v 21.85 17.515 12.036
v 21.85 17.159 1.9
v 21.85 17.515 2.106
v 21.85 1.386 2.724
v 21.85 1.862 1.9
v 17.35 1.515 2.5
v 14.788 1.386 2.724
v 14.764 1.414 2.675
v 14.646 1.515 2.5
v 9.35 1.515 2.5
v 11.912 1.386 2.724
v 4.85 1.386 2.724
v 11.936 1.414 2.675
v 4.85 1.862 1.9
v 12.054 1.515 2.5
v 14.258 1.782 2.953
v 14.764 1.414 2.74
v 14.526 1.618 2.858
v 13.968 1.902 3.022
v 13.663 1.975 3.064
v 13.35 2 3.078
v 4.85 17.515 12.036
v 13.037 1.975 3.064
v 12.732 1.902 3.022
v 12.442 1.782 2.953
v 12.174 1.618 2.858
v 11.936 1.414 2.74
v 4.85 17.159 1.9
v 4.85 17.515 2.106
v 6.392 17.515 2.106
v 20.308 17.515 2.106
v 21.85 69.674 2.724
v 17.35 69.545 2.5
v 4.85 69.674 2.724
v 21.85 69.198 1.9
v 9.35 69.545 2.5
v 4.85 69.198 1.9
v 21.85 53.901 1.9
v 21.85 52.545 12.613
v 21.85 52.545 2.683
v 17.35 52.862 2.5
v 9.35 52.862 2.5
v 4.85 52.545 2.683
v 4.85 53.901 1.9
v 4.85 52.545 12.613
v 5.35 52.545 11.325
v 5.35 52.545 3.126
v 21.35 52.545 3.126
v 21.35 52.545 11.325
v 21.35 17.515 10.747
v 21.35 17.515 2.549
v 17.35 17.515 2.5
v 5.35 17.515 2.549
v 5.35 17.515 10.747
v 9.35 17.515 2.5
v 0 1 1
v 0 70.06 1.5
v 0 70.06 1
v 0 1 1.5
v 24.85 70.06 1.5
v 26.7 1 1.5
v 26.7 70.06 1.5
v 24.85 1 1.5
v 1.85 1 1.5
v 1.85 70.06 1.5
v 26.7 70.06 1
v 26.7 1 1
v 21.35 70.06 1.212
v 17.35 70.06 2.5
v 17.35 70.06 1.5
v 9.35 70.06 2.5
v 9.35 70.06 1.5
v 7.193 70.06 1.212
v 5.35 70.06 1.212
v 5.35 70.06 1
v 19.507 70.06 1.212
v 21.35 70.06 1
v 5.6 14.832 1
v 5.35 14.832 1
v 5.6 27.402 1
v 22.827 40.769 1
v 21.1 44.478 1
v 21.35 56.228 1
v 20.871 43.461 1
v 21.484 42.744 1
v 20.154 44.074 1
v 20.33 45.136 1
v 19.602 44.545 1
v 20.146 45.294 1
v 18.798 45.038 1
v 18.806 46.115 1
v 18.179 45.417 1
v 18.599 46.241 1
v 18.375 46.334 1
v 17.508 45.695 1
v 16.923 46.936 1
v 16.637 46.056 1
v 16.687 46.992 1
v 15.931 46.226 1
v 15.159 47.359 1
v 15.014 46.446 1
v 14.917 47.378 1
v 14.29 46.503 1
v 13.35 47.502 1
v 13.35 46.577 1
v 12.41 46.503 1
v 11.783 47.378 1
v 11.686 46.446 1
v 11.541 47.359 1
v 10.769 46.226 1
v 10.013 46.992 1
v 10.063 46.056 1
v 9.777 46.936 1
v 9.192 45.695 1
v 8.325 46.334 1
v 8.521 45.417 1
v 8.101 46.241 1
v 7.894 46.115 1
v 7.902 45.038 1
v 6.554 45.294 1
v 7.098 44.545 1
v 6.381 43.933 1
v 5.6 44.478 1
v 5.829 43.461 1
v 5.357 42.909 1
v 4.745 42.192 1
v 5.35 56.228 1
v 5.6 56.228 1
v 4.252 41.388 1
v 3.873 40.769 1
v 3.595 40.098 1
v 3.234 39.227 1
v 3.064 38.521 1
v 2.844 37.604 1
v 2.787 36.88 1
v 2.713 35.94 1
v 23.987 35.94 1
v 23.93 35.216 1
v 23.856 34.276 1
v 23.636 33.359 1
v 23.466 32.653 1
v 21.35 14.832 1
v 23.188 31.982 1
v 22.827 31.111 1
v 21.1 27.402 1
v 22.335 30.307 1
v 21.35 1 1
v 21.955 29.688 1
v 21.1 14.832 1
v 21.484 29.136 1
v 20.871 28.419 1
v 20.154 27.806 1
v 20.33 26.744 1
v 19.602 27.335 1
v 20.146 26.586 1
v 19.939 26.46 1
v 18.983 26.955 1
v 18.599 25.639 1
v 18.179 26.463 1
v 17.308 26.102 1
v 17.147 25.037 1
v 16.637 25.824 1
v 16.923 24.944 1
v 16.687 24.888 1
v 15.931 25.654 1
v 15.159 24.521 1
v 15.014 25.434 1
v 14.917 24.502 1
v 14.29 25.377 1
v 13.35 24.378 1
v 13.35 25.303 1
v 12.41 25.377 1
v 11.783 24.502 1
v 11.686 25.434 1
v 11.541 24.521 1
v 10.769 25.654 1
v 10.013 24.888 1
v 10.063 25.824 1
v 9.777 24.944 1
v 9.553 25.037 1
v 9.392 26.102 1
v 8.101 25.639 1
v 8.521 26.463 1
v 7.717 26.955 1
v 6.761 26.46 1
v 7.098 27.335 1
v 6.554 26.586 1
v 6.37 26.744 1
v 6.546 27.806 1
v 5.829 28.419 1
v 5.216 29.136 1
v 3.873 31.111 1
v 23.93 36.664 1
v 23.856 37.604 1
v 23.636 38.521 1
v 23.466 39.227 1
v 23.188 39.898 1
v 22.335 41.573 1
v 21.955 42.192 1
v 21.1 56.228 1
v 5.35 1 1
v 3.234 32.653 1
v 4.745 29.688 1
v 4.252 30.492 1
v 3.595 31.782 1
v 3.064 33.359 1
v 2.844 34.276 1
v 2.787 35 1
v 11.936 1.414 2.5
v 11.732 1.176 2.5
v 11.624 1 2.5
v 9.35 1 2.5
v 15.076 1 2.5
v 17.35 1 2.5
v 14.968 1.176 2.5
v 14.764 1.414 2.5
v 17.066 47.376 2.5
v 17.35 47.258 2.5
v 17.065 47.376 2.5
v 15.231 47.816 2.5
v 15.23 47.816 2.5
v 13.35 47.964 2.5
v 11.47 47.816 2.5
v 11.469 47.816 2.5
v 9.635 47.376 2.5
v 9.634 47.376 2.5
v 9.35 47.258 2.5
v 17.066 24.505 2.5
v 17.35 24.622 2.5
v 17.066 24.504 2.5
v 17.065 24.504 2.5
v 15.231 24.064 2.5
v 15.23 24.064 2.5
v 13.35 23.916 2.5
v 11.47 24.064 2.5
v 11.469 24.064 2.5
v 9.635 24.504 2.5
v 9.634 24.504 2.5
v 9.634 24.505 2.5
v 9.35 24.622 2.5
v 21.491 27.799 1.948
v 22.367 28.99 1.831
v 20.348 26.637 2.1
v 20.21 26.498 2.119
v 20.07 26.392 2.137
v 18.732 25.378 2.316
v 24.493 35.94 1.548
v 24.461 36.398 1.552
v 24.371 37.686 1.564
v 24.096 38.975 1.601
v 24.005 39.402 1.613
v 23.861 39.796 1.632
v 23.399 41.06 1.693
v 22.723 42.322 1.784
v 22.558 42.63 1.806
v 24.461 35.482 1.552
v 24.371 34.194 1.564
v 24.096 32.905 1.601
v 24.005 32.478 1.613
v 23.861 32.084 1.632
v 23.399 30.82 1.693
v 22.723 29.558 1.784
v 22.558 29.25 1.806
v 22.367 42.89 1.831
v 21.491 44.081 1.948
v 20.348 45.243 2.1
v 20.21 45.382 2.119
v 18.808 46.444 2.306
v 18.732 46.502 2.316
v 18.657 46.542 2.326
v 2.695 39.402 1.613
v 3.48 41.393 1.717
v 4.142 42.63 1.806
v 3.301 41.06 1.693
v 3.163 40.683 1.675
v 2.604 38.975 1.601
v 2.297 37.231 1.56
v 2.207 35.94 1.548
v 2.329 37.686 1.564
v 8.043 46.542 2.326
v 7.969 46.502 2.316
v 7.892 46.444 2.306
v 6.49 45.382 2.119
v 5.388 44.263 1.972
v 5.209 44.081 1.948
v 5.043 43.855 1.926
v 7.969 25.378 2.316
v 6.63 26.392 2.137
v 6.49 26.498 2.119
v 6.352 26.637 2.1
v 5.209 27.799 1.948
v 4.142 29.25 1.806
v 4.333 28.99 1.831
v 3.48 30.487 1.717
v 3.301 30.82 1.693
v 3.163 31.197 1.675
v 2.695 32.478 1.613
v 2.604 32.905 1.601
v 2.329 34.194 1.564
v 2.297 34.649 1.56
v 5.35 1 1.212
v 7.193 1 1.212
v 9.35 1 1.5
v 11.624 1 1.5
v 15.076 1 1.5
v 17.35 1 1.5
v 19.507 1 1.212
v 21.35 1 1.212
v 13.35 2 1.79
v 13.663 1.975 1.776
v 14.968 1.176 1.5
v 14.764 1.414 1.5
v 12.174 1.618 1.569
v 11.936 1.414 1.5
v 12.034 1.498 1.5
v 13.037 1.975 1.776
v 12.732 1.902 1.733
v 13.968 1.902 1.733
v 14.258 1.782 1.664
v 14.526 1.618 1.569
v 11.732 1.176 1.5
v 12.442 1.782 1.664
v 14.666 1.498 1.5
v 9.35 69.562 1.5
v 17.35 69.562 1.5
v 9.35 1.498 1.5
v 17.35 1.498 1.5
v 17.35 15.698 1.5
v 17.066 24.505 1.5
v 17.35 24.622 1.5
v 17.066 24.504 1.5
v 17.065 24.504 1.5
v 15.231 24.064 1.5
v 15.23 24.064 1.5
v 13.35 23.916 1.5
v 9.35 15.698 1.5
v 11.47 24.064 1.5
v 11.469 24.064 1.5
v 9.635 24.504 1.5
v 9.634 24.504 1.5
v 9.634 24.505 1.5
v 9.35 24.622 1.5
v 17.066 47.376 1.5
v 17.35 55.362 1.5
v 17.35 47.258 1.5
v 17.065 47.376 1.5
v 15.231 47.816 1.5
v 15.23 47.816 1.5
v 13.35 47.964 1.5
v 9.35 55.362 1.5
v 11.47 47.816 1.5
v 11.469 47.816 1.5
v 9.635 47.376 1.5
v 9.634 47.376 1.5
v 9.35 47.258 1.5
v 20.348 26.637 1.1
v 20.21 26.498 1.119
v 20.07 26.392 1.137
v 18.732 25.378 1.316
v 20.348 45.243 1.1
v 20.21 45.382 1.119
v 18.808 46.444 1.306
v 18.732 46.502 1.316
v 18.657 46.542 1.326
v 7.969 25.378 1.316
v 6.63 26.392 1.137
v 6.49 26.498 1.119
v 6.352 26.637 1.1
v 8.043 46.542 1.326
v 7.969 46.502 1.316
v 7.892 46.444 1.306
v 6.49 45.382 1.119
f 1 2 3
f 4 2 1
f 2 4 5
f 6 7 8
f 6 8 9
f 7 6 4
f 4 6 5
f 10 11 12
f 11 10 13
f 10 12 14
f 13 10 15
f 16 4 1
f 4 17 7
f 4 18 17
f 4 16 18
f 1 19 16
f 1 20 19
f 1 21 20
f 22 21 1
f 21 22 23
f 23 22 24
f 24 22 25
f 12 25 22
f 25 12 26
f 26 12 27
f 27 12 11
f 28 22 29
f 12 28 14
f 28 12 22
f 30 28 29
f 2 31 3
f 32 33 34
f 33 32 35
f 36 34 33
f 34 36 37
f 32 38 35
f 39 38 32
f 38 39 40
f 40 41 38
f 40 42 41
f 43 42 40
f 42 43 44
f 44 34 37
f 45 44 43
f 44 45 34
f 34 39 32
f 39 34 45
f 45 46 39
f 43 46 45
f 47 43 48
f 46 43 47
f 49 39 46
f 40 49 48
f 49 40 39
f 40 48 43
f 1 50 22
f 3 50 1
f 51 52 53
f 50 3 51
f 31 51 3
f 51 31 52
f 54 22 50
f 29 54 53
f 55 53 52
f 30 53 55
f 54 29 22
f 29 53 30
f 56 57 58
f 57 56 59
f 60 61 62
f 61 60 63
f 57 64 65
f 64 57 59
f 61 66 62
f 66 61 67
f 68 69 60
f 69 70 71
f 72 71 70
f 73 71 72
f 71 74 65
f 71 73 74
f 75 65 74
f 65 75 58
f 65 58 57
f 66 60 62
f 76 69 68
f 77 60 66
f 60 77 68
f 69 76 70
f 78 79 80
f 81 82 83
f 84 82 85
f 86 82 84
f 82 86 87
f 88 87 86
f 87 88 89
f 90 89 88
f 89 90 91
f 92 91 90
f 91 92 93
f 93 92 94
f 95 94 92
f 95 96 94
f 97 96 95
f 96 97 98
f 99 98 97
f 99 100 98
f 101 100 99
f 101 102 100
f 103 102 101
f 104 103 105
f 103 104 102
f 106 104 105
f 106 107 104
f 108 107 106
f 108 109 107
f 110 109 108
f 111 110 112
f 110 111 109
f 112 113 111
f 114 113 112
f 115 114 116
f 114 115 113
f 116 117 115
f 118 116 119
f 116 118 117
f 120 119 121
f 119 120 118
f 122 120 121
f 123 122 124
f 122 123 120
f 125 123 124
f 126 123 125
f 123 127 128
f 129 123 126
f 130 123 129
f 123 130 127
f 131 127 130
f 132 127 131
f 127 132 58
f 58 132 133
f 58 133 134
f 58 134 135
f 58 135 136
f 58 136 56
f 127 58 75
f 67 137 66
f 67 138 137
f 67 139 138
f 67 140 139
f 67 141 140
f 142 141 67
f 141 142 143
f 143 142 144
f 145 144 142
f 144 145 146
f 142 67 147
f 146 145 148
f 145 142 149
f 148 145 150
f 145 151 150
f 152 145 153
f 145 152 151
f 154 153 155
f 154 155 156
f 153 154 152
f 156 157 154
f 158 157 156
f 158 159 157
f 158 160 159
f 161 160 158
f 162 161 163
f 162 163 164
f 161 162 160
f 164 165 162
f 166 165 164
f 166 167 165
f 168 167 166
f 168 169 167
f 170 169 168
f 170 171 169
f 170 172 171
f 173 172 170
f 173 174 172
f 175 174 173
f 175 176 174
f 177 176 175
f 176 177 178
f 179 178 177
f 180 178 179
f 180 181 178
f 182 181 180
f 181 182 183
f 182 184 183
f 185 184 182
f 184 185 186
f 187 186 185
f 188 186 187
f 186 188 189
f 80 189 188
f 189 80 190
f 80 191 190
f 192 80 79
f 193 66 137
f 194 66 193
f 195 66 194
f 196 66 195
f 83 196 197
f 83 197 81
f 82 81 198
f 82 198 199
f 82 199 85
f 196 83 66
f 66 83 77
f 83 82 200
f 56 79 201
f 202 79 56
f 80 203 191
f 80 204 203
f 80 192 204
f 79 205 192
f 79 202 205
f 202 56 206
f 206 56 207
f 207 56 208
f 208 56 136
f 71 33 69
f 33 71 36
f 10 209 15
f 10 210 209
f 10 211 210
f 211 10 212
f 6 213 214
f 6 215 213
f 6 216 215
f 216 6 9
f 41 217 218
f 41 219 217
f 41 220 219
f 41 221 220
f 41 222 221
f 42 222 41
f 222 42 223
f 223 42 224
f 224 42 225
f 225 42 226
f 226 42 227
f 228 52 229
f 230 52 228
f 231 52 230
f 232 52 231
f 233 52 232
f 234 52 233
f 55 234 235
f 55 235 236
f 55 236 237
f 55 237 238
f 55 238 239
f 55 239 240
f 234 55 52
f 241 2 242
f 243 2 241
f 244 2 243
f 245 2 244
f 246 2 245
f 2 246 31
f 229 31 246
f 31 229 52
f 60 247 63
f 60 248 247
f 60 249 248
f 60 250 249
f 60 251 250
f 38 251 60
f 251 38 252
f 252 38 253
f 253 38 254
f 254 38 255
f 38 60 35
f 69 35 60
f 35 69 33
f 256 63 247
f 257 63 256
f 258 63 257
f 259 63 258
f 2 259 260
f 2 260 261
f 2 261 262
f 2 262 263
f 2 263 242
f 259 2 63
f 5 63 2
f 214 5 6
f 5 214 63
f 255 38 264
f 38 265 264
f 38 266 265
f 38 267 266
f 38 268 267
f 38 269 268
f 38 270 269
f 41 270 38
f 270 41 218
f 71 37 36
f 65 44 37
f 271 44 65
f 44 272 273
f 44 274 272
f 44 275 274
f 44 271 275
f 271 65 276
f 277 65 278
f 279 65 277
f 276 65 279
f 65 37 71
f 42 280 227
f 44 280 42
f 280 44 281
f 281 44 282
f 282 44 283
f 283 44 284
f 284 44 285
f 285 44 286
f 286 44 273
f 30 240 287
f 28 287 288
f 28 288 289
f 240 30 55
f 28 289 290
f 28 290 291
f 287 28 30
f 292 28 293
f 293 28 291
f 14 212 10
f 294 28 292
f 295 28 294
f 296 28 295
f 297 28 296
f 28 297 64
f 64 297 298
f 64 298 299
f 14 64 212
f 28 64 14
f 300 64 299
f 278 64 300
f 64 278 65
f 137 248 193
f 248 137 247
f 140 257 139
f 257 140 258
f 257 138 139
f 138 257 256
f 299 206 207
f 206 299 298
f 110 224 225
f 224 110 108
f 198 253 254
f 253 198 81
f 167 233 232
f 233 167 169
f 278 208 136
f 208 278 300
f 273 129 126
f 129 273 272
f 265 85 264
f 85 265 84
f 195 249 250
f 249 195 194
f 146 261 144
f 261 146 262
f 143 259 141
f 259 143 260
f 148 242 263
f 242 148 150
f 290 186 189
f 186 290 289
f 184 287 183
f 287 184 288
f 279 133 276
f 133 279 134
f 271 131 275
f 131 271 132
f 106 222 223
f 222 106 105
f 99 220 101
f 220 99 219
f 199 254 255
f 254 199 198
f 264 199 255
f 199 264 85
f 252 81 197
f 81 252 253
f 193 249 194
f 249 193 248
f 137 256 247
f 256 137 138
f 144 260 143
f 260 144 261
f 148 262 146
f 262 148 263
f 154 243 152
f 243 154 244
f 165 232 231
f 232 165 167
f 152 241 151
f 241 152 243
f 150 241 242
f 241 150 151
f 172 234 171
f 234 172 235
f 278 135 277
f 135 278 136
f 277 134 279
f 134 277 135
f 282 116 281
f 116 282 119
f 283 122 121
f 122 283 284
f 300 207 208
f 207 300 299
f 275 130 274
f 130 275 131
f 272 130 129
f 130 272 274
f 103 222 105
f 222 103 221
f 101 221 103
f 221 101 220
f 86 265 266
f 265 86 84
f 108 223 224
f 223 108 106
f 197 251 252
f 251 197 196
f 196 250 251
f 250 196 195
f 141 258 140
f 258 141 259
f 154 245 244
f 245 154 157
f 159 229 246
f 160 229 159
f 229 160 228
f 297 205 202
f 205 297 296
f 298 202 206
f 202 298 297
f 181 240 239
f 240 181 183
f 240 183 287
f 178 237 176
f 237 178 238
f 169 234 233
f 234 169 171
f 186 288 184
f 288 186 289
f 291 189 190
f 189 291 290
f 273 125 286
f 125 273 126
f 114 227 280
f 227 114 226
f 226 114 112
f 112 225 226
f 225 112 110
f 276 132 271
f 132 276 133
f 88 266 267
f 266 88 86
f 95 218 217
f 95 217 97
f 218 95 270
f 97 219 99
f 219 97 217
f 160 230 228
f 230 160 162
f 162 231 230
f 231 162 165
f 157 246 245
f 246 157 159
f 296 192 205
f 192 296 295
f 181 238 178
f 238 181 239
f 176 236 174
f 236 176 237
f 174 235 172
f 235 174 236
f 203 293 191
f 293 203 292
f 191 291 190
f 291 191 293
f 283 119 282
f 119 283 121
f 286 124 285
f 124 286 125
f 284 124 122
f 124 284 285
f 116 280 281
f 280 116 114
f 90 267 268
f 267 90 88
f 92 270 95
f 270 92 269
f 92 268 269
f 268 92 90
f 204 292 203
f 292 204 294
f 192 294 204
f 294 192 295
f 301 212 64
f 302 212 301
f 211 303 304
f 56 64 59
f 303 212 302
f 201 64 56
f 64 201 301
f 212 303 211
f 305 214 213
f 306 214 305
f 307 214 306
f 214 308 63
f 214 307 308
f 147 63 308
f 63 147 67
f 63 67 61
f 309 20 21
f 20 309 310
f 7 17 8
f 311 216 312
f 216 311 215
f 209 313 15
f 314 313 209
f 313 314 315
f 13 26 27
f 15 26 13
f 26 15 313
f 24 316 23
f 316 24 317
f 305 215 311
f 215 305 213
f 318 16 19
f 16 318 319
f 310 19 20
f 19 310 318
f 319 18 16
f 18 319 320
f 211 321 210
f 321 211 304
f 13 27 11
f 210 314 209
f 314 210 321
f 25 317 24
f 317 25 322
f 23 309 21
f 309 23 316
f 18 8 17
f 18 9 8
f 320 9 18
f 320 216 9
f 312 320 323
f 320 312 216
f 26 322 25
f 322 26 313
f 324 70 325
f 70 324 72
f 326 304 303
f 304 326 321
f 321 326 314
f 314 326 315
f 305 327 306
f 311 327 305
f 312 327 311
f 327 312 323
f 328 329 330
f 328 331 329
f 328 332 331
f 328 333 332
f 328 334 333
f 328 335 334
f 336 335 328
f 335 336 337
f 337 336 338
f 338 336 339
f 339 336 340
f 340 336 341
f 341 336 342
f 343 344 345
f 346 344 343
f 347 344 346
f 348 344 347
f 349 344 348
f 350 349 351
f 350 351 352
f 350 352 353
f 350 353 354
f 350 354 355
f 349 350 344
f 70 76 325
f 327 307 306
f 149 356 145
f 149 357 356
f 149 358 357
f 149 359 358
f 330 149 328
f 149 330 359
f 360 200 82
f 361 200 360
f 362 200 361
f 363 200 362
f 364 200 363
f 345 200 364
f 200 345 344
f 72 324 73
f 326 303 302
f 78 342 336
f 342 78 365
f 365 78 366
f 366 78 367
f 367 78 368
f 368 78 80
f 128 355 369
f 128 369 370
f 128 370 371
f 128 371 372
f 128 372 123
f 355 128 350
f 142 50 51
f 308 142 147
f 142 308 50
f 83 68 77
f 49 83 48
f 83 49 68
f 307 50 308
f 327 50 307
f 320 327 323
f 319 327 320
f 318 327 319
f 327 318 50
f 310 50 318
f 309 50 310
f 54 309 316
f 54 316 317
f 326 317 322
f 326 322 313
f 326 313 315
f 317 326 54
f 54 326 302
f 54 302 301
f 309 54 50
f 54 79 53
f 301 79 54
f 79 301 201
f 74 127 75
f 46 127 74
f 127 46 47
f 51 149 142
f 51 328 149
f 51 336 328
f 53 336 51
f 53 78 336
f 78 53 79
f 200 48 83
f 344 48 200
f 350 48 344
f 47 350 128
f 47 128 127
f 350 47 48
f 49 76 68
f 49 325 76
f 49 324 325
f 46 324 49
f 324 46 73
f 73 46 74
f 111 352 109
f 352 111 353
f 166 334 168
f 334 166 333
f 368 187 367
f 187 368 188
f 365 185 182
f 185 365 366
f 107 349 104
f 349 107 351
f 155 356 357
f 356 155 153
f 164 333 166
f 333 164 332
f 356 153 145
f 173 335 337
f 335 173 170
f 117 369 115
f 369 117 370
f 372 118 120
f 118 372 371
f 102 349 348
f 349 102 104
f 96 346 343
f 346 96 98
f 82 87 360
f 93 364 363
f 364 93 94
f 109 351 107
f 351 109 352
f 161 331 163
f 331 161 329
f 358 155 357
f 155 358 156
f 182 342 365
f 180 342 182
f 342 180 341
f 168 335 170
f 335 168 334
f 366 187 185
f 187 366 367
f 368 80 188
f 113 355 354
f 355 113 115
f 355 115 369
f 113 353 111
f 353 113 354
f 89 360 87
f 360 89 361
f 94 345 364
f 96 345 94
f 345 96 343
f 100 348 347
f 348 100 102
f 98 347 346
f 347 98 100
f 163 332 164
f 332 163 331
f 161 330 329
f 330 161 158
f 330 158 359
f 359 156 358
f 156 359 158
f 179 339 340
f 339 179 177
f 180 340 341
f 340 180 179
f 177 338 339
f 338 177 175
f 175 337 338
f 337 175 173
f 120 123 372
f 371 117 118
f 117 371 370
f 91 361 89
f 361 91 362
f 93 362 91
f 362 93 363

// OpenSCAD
$fn=40;

/* Diffuser Lense For A Particular Project (OpenSCAD) */

/* Camera */
cam_dia = 10.5;

/* LED PCB */
ledpcbw = 26.7;
ledpcbh = 71.88;
ledpcb_thickness = 3.47;
ledpcb_header_pos = 25;
ledpcb_header_w = 9;
holedia = (cam_dia + 8);

/* Diffuser */
diffuserw=ledpcbw;
diffuserh=ledpcbh-1.82;
thickness=ledpcb_thickness-1.59;

/* Top Diffuser */
diffuser_top_h=0.5;

/* Bottom Diffuser */
diffuser_bottom_h=1;

/* Enclosure hole */
enclosurew = ledpcb_header_pos-2;

/* SMD LED */
ledh = 2.76-1.59;
ledw = 4;
ledd = 1.6;

/* INSET */
led_mount_inset = 5;
led_mount_angle = 180-60;
led_mount_tol=2;
led_mount_thickness=3;

module led_mount(rotation, w, d, h)
{
  rotate([rotation,0,0])
    union()
    {
      translate([ledpcbw/2 - w/2, -d/2, -h])
        cube([w,d,h+4]);
    }
}

module black_cover_bulk()
{
  bthick=2;
  difference()
  {
    union()
    { 
      // Main object
      difference()
      {
        union()
        { // Main Body
          
          // Top Diffuser
          cube([diffuserw,diffuserh,diffuser_top_h]);
          
          // Bottom Diffuser
          bottom_flat_width = ledw;
          hull()
          {
            translate([(diffuserw - enclosurew)/2,0,0])
              cube([enclosurew,diffuserh,diffuser_top_h]);
            translate([ledpcbw/2 - bottom_flat_width,0,diffuser_top_h])
              cube([bottom_flat_width*2, diffuserh, diffuser_bottom_h]);
          }
          
          // LED Holes
          difference()
          {
            union()
            {
              translate([0,2+led_mount_inset,0])
                led_mount(led_mount_angle,ledw+led_mount_tol*4+led_mount_thickness+bthick,ledd+led_mount_tol+led_mount_thickness+bthick,ledh+led_mount_thickness+20);
              translate([0,-1+diffuserh-led_mount_inset,0])
                led_mount(-led_mount_angle,ledw+led_mount_tol*4+led_mount_thickness+bthick,ledd+led_mount_tol+led_mount_thickness+bthick,ledh+led_mount_thickness+15);
            }
            
            exclude_length = diffuserh/2;
            translate([0,diffuserh/2-exclude_length/2,0])
              cube([diffuserw,exclude_length,100]);
          }
        }

        // Camera Hole
        translate([ledpcbw/2,ledpcbh/2,-thickness/2])
          cylinder(thickness*3,d=holedia);

        // Camera Hole Bottom Lip
        translate([ledpcbw/2,ledpcbh/2, diffuser_top_h+diffuser_bottom_h-3+0.001])
          cylinder(3, d1=holedia, d2=holedia*1.3);
       }
    }
    
    /* Trimming */
    translate([0,0,-thickness])
      cube([diffuserw,1,thickness*4]);
    
    /* Trimming */
    translate([ledpcbw/2,0,-thickness])
      cylinder(r=2,h=100);
    
    /* Remove bottom */
    translate([0,0,-5])
      cube([1000,1000,10], center=true);  
  }
}



module original_diffuser()
{
  difference()
  {
    union()
    { 
      // Main object
      difference()
      {
        union()
        { // Main Body
          
          // Top Diffuser
          cube([diffuserw,diffuserh,diffuser_top_h]);
          
          // Bottom Diffuser
          bottom_flat_width = ledw;
          hull()
          {
            translate([(diffuserw - enclosurew)/2,0,0])
              cube([enclosurew,diffuserh,diffuser_top_h]);
            translate([ledpcbw/2 - bottom_flat_width,0,diffuser_top_h])
              cube([bottom_flat_width*2, diffuserh, diffuser_bottom_h]);
          }
          
          // LED Holes
          translate([0,1+led_mount_inset,0])
            led_mount(led_mount_angle,ledw+led_mount_tol*4+led_mount_thickness,ledd+led_mount_tol+led_mount_thickness,ledh+led_mount_thickness+2);
          translate([0,diffuserh-led_mount_inset,0])
            led_mount(-led_mount_angle,ledw+led_mount_tol*4+led_mount_thickness,ledd+led_mount_tol+led_mount_thickness,ledh+led_mount_thickness+2);
        }

        // LED Holes
        translate([0,1+led_mount_inset,0])
          led_mount(led_mount_angle,ledw+led_mount_tol*4,ledd+led_mount_tol,ledh+2);
        translate([0,diffuserh-led_mount_inset,0])
          led_mount(-led_mount_angle,ledw+led_mount_tol*4,ledd+led_mount_tol,ledh+2);

        // Camera Hole
        translate([ledpcbw/2,ledpcbh/2,-thickness/2])
          cylinder(thickness*3,d=holedia);

        // Camera Hole Bottom Lip
        translate([ledpcbw/2,ledpcbh/2, diffuser_top_h+diffuser_bottom_h-3+0.001])
          cylinder(3, d1=holedia, d2=holedia*1.3);
       }
    }
    
    /* Trimming */
    translate([0,0,-thickness])
      cube([diffuserw,1,thickness*4]);
    
    /* Remove bottom */
    translate([0,0,-5])
      cube([1000,1000,10], center=true);  
    
    /* Trimming */
    translate([ledpcbw/2,0,-thickness])
      cylinder(r=2,h=100);
  }
}

module original_diffuser_keepout(standoff_dist)
{
  difference()
  {
    union()
    { 
      // Main object
      difference()
      {
        union()
        { // Main Body
          
          // Top Diffuser
          cube([diffuserw,diffuserh,diffuser_top_h]);
          
          // Bottom Diffuser
          bottom_flat_width = ledw;
          hull()
          {
            translate([(diffuserw - enclosurew)/2,0,0])
              cube([enclosurew,diffuserh,diffuser_top_h]);
            translate([ledpcbw/2 - bottom_flat_width,0,diffuser_top_h])
              cube([bottom_flat_width*2, diffuserh, diffuser_bottom_h]);
          }
          
          // LED Holes
          translate([0,1+led_mount_inset,0])
            led_mount(led_mount_angle,ledw+led_mount_tol*4+led_mount_thickness+standoff_dist*2,ledd+led_mount_tol+led_mount_thickness+standoff_dist,ledh+led_mount_thickness+2+standoff_dist+30);
          translate([0,diffuserh-led_mount_inset,0])
            led_mount(-led_mount_angle,ledw+led_mount_tol*4+led_mount_thickness+standoff_dist*2,ledd+led_mount_tol+led_mount_thickness+standoff_dist,ledh+led_mount_thickness+2+standoff_dist+30);
        }

        // Camera Hole
        translate([ledpcbw/2,ledpcbh/2,-thickness/2])
          cylinder(thickness*3,d=holedia);

        // Camera Hole Bottom Lip
        translate([ledpcbw/2,ledpcbh/2, diffuser_top_h+diffuser_bottom_h-3+0.001])
          cylinder(3, d1=holedia, d2=holedia*1.3);
       }
    }
    
    /* Trimming */
    translate([0,0,-thickness])
      cube([diffuserw,1,thickness*4]);
    
    /* Remove bottom */
    translate([0,0,-5])
      cube([1000,1000,10], center=true);  
  }
}

//%original_diffuser();

difference()
{
  translate([0,0,1])
    black_cover_bulk();
  original_diffuser_keepout(0.5);
}
